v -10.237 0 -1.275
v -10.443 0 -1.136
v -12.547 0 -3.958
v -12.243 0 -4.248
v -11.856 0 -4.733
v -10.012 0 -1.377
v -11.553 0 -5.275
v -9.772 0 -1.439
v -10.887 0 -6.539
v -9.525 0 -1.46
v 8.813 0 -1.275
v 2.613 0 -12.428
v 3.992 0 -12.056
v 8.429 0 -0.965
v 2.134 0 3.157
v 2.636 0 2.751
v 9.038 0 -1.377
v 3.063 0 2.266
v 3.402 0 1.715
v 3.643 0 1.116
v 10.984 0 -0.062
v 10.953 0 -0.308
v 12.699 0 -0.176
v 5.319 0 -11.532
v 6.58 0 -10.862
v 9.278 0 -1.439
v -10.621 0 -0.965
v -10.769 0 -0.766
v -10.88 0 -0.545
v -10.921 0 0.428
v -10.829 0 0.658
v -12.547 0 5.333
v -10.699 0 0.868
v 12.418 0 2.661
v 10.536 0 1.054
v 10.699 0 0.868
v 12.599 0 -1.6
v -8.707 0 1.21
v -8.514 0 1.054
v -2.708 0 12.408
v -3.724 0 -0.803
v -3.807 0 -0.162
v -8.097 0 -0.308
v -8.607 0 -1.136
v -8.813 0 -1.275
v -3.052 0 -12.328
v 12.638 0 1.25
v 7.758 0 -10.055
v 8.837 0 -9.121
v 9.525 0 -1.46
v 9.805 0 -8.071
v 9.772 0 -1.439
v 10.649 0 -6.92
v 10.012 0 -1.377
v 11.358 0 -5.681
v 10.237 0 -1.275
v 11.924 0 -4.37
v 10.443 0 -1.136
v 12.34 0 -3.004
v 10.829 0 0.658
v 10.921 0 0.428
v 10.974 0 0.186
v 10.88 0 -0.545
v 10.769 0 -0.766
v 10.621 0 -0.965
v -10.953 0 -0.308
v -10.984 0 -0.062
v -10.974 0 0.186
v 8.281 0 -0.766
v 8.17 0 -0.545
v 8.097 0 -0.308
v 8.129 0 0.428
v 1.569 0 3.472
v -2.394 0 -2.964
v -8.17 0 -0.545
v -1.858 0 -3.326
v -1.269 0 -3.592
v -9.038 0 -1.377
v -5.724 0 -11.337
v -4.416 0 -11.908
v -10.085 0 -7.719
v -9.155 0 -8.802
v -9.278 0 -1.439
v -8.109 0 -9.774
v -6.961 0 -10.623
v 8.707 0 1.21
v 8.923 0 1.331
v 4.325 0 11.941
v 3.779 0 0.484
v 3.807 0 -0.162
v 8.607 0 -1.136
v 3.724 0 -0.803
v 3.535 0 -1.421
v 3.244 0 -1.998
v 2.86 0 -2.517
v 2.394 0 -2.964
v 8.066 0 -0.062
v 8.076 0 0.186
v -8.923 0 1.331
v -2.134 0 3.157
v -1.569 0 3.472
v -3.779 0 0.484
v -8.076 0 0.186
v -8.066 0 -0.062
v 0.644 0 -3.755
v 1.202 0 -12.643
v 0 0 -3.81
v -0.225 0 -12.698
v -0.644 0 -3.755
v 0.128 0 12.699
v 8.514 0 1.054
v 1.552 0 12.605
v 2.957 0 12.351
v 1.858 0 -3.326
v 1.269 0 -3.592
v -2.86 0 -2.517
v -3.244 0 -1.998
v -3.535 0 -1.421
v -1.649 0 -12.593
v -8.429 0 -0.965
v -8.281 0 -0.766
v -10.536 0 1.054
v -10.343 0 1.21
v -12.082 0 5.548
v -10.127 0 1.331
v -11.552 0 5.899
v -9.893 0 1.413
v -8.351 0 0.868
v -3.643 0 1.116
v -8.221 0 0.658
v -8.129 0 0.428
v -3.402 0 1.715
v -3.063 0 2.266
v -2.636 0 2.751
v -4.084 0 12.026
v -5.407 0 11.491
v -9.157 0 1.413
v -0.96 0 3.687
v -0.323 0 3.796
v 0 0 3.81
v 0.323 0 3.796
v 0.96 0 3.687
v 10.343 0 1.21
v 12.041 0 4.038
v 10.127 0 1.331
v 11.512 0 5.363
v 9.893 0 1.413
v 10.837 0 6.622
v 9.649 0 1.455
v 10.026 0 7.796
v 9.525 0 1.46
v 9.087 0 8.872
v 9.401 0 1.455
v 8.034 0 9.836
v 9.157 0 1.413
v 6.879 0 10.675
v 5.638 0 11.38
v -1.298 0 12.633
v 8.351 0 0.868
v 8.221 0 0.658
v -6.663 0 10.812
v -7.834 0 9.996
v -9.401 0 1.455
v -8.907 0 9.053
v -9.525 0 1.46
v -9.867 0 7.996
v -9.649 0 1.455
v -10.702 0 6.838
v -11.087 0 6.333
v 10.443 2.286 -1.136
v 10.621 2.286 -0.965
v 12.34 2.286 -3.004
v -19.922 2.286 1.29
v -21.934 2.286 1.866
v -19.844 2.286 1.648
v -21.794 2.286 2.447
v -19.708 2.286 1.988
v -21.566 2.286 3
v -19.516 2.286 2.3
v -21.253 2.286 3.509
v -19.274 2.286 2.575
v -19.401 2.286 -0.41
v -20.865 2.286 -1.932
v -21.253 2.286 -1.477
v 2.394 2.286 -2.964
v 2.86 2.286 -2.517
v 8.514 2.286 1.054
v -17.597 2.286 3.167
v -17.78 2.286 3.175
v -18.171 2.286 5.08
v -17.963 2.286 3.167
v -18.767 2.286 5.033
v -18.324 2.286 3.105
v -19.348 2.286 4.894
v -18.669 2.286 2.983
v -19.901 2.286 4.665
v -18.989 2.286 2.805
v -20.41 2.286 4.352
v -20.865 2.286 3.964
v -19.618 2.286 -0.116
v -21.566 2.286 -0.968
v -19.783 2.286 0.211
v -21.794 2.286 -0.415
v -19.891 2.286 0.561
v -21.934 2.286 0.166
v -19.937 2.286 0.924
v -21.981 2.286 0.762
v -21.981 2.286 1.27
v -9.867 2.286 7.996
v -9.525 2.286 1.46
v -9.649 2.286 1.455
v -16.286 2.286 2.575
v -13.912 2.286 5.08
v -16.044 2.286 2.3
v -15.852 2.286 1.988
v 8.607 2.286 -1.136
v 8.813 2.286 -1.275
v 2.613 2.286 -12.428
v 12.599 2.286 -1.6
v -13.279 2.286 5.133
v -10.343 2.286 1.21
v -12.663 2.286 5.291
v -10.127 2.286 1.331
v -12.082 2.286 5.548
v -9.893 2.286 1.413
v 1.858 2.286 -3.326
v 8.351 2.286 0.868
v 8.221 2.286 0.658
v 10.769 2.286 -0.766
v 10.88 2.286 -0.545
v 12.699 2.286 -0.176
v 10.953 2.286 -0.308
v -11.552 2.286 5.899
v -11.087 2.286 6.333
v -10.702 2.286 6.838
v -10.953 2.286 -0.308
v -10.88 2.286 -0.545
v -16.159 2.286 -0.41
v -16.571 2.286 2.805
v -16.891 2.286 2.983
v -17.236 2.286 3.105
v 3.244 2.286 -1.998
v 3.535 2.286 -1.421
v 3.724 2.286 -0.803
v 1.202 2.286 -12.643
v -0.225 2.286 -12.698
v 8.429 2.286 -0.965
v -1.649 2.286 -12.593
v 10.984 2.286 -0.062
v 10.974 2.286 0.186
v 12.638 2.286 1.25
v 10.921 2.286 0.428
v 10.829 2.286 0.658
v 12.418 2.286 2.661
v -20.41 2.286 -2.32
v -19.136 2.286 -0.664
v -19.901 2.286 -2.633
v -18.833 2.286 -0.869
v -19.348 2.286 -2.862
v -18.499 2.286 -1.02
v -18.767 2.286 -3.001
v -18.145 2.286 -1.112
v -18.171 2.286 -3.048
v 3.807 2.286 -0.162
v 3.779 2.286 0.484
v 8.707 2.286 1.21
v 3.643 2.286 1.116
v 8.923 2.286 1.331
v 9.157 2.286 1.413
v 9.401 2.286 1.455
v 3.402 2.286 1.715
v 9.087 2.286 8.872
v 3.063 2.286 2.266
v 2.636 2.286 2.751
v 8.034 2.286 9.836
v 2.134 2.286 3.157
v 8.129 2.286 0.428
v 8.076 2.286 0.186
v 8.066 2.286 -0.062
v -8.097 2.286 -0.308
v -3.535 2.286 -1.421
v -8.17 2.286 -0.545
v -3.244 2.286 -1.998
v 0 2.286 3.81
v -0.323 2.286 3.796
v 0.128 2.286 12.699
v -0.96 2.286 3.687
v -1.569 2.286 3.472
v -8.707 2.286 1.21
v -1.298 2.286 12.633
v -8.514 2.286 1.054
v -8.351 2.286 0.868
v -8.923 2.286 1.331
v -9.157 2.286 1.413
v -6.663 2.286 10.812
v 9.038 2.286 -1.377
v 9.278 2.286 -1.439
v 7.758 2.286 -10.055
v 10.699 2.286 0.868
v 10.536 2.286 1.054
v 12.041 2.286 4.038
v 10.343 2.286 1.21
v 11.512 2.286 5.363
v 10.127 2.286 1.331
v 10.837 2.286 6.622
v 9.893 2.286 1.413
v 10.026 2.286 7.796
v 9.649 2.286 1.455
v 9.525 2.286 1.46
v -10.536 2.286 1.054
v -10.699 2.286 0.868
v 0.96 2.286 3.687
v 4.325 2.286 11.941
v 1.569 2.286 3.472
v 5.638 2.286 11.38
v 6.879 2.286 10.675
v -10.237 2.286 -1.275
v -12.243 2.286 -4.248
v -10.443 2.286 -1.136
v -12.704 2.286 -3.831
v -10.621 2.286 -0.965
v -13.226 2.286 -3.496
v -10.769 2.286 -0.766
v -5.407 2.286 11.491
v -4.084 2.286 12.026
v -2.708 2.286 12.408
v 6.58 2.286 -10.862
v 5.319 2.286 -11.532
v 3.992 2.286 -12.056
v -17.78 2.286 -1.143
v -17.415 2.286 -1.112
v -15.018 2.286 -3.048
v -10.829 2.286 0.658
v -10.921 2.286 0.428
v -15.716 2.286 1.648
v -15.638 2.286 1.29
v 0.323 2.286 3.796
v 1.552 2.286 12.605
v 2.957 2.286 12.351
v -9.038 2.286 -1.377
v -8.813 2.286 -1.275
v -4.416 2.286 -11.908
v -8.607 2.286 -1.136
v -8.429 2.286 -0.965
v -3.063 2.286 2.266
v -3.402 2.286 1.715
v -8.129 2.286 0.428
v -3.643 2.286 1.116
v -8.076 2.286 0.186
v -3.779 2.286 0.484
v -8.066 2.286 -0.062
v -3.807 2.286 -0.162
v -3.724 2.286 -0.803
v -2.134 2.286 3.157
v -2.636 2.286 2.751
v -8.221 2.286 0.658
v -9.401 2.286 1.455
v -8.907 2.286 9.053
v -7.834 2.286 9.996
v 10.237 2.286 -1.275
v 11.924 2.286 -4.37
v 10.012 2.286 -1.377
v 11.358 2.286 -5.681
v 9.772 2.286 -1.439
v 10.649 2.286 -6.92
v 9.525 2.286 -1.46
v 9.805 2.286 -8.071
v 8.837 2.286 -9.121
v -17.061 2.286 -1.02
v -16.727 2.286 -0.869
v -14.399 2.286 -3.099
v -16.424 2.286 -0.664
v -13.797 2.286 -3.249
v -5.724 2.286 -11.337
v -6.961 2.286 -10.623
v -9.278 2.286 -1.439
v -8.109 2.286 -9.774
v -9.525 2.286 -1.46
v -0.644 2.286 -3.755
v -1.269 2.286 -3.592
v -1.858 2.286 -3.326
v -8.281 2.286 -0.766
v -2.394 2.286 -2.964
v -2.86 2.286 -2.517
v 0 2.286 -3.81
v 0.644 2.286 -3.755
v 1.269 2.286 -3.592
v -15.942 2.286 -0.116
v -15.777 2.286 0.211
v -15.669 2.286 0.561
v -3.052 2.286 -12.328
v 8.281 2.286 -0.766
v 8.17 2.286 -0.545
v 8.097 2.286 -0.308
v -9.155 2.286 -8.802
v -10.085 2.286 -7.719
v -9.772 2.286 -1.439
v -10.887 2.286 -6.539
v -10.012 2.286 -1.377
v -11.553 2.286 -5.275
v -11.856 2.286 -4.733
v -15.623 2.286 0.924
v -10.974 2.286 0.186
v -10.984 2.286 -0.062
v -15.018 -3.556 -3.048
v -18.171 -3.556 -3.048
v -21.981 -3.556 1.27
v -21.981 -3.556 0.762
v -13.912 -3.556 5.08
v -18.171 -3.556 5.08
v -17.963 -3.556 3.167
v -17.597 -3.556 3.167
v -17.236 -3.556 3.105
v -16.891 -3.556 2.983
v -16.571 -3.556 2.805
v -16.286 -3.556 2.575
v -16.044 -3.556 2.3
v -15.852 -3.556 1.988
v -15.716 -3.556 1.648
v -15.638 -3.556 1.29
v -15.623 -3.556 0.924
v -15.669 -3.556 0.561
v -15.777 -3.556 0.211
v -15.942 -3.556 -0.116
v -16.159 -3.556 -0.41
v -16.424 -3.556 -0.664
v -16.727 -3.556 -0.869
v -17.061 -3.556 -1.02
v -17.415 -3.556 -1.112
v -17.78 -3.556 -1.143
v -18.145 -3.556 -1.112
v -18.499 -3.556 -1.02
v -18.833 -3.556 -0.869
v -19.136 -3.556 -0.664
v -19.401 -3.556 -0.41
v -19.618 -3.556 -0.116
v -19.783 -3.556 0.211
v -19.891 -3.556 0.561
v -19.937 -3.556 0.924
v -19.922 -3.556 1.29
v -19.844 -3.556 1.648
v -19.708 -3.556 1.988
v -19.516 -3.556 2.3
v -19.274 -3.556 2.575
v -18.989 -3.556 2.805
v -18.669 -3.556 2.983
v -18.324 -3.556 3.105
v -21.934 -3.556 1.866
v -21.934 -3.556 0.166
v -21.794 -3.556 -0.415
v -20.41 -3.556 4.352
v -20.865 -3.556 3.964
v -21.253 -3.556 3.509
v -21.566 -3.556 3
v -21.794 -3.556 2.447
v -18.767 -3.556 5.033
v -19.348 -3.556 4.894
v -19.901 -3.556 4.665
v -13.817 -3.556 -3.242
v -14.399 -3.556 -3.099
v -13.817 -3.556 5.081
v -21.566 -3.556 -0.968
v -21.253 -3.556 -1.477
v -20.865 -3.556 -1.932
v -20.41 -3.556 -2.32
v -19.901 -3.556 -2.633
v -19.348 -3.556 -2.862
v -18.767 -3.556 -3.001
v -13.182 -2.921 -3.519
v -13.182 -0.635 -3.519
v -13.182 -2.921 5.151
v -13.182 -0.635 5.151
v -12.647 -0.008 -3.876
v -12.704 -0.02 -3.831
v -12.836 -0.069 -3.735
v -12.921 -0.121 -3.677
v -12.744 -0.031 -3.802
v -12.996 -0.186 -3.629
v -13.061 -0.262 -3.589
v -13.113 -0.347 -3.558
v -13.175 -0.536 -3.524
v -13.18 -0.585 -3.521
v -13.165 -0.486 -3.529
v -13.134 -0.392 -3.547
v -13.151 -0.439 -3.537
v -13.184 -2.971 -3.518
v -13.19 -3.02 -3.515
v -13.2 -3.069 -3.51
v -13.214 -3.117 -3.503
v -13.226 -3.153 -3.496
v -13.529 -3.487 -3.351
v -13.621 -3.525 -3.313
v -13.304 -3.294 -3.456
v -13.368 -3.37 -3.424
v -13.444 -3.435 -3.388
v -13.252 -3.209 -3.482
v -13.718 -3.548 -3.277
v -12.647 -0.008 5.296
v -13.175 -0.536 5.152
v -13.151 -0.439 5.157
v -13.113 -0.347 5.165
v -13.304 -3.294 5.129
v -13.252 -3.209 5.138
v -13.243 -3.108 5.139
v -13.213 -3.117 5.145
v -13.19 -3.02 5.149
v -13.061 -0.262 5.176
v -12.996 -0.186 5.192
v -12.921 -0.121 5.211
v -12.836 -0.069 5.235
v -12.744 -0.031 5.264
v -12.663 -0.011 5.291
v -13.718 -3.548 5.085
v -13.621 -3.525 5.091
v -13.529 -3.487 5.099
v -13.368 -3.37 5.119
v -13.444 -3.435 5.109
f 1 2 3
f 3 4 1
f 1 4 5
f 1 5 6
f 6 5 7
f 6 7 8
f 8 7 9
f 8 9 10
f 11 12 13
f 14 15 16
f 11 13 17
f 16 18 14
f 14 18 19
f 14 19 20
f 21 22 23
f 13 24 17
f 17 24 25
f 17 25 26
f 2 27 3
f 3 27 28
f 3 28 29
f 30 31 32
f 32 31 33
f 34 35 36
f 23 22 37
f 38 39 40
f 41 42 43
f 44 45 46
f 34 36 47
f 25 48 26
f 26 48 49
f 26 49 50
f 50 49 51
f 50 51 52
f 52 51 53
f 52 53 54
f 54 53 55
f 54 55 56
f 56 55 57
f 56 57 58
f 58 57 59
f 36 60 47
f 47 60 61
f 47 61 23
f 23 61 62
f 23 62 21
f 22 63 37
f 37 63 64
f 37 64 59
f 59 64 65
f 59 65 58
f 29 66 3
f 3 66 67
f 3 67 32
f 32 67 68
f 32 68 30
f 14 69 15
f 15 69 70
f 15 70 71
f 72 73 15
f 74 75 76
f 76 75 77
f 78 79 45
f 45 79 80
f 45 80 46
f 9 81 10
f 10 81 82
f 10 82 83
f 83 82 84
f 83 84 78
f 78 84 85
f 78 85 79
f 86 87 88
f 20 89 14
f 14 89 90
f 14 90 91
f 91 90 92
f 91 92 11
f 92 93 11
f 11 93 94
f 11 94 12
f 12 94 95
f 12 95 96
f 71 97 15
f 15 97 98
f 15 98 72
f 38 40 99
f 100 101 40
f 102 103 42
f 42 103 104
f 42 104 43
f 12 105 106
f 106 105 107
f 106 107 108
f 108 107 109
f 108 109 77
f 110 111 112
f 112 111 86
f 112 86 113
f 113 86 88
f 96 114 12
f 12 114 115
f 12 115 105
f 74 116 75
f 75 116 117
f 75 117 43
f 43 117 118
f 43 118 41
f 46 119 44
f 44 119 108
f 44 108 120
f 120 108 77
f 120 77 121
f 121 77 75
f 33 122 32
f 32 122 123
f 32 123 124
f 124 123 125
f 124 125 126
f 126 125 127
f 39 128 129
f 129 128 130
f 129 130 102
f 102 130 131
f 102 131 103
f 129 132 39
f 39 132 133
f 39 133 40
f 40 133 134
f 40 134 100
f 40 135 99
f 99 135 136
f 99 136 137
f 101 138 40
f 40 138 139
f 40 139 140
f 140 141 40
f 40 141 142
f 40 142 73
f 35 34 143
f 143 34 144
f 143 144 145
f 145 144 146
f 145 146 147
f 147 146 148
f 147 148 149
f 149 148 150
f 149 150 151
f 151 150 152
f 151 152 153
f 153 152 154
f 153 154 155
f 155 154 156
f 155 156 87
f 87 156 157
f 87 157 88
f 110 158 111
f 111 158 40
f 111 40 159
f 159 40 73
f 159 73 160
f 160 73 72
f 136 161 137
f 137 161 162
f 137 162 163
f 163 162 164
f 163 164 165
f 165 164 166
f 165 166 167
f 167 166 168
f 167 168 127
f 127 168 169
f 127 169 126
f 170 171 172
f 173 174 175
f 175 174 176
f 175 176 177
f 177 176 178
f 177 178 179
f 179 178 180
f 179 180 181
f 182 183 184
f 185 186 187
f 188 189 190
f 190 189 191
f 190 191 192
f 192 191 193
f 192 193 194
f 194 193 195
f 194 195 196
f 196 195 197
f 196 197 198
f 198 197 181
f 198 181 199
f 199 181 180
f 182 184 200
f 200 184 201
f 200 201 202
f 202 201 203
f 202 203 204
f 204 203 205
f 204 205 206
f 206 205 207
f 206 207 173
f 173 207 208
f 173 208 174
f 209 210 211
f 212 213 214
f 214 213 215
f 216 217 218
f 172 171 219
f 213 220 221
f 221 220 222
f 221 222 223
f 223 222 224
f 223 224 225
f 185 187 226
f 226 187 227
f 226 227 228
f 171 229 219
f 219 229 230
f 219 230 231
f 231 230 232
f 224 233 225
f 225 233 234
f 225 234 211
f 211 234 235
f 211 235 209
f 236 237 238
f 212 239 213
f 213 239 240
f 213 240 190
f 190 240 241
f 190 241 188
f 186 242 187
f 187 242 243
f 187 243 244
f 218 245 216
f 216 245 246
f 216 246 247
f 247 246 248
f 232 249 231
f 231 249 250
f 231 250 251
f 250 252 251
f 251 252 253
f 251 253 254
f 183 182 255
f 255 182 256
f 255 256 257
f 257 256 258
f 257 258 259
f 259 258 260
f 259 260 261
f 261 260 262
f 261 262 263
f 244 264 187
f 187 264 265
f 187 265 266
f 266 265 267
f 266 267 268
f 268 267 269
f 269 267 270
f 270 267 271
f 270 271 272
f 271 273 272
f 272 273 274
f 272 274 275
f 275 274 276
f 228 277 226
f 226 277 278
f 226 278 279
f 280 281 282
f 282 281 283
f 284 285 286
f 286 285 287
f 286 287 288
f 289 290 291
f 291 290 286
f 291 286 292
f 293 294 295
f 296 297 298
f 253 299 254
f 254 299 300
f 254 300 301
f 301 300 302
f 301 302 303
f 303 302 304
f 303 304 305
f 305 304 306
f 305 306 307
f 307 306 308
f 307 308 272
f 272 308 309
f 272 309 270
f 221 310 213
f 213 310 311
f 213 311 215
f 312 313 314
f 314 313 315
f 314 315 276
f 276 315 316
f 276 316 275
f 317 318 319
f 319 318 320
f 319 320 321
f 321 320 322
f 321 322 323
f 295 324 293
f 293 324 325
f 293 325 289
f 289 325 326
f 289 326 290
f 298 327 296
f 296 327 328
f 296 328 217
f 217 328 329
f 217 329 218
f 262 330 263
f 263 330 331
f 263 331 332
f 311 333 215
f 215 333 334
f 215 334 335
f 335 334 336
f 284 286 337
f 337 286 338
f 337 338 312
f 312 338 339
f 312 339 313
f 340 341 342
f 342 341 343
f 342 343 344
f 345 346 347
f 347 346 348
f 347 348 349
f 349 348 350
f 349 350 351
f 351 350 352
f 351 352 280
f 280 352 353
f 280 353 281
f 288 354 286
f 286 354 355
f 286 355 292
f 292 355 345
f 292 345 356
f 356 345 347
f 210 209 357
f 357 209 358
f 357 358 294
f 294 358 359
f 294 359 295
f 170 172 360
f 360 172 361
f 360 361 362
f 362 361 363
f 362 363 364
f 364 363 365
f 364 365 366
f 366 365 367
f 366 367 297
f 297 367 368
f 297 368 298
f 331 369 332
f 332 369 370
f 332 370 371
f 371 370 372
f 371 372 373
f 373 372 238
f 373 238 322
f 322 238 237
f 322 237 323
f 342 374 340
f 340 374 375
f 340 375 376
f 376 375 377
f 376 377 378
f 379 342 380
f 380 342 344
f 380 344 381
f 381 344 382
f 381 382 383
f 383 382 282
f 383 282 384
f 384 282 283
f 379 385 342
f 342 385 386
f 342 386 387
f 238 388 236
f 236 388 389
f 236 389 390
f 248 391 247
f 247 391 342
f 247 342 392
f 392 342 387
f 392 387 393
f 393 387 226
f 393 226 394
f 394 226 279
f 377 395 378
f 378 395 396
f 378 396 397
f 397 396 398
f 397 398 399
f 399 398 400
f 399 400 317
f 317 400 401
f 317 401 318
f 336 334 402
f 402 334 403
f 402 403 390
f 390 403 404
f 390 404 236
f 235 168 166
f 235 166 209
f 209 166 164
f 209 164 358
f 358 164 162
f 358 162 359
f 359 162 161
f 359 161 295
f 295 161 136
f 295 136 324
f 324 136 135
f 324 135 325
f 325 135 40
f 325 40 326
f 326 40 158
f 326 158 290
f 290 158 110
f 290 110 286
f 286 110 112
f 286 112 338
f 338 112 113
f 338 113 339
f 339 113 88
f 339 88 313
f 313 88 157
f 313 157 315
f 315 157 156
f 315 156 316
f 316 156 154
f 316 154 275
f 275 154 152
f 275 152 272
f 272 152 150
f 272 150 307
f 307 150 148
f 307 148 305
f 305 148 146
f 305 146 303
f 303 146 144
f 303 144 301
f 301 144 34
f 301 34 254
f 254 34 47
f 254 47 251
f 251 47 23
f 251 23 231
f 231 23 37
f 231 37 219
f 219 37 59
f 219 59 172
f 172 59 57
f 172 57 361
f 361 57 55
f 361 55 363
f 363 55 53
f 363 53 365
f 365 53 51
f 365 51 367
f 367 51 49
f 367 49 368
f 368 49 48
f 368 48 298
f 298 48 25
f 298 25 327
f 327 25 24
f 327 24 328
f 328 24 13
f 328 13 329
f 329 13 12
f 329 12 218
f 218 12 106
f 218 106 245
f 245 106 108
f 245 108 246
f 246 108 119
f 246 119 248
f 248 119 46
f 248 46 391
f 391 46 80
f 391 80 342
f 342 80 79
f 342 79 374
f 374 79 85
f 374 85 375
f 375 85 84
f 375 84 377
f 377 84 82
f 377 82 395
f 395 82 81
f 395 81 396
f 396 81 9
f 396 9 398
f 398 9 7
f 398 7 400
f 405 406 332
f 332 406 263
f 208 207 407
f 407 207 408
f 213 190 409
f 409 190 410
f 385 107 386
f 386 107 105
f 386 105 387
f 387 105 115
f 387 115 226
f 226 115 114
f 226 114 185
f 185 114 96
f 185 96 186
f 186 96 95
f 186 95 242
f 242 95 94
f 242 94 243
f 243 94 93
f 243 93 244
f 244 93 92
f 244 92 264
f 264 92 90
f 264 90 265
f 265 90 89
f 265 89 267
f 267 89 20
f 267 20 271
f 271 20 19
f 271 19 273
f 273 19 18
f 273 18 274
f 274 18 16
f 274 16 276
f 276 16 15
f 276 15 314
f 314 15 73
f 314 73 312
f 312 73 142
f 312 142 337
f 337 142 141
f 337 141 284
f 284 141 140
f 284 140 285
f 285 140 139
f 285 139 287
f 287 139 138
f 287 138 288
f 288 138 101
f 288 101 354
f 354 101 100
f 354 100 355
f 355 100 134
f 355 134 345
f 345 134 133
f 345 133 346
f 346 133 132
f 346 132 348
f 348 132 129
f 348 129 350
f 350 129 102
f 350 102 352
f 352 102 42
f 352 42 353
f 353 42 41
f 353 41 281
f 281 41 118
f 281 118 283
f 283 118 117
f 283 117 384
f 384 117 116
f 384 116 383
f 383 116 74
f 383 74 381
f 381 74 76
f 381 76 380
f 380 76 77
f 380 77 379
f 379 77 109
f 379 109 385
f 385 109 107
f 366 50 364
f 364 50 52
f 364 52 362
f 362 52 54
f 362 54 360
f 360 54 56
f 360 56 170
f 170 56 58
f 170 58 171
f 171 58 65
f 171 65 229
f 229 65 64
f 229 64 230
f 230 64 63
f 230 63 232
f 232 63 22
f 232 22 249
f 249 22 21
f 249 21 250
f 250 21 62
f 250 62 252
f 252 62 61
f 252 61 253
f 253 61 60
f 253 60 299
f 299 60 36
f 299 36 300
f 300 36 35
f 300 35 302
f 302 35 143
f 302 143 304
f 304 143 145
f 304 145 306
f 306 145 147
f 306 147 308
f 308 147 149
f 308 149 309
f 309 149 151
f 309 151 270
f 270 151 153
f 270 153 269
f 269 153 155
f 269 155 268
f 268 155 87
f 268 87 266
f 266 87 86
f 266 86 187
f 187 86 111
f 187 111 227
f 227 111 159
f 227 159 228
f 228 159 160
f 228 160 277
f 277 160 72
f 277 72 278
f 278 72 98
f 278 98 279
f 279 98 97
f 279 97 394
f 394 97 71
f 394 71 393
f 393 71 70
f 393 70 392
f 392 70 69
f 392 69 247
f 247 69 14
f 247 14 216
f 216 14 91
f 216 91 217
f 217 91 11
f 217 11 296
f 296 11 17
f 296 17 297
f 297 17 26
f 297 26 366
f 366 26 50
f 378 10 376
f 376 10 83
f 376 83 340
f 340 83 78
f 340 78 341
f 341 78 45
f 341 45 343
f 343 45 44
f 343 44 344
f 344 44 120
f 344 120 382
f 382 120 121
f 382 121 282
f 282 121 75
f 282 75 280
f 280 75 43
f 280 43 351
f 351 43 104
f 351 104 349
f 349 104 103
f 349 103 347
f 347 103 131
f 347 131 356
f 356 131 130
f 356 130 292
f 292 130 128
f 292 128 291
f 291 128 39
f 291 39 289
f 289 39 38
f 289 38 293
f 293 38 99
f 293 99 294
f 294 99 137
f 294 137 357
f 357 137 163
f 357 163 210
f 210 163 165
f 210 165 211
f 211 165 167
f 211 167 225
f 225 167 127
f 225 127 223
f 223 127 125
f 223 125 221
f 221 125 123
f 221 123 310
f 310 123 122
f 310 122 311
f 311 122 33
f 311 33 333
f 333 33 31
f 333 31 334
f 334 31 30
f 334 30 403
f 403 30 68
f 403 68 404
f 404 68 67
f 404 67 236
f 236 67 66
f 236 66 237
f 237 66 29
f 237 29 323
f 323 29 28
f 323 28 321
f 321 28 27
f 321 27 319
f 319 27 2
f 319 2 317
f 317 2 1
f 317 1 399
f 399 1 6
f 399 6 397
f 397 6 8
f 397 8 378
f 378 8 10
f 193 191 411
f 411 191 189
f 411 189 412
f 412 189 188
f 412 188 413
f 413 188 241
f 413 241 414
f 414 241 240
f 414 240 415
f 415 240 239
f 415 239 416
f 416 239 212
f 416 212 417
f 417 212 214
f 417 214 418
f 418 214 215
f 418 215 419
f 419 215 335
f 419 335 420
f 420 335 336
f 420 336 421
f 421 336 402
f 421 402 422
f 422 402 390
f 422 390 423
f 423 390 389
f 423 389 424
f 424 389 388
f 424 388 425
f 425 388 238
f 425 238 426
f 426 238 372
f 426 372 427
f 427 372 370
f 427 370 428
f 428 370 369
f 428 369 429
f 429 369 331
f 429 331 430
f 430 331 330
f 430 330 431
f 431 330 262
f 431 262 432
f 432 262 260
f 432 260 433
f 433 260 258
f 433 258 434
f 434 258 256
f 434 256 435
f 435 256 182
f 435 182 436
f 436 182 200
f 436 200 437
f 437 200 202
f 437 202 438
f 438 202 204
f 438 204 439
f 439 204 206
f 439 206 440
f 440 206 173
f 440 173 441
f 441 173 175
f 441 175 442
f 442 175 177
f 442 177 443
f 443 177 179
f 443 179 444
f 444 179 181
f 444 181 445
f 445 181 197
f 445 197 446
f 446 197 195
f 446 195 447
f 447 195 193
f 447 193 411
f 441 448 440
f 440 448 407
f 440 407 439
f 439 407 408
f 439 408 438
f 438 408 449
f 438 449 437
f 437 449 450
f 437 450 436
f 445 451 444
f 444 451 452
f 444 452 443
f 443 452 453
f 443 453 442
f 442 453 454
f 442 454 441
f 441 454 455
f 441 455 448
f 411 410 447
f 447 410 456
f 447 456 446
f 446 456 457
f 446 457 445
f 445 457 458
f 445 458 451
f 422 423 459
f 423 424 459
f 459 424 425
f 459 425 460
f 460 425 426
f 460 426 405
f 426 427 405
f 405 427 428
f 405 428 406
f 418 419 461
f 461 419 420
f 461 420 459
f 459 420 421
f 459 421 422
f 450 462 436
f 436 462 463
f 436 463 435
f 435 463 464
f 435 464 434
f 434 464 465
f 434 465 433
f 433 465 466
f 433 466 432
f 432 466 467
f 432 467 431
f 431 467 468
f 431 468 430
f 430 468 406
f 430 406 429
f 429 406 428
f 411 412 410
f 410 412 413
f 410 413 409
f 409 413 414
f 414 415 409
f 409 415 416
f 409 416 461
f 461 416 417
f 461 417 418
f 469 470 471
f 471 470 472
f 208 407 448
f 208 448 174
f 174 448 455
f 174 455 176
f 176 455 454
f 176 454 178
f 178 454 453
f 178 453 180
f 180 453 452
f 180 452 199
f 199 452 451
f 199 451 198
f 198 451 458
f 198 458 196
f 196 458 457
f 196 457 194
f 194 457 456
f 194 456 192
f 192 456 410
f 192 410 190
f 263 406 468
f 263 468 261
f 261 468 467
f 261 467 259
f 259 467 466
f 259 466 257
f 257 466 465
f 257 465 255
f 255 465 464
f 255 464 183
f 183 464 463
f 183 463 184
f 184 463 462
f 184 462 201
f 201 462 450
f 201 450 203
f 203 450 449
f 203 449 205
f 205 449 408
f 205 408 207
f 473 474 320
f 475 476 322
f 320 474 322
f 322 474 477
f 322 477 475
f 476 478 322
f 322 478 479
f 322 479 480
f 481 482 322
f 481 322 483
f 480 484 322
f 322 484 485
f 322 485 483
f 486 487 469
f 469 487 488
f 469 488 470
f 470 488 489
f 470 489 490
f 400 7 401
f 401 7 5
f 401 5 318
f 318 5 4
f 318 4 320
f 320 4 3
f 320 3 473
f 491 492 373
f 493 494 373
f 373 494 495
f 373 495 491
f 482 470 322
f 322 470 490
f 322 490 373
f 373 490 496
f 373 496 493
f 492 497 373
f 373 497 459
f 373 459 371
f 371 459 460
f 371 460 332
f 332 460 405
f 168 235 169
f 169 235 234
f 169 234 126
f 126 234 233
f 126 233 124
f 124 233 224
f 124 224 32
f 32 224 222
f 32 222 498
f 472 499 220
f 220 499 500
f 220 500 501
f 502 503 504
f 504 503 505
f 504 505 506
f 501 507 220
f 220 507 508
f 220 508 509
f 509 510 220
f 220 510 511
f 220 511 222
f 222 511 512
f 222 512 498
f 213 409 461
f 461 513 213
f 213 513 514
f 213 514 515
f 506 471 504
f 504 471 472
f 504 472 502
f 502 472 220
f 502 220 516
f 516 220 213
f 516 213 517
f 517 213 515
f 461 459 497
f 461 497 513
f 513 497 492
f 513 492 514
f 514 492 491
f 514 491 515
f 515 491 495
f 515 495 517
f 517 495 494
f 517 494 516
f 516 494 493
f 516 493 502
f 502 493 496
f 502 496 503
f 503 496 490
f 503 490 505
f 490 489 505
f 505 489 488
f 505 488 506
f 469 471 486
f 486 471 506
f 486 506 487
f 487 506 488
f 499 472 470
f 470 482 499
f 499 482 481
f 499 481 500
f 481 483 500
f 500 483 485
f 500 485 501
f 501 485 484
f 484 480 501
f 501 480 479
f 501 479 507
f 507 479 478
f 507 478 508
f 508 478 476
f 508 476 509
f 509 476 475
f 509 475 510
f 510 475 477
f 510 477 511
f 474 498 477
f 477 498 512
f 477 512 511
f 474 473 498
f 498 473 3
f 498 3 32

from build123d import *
from build123d.topology import SkipClean

# Parameters (mm, degrees)
SKETCH1_R           = 3.81
SKETCH1_R_2         = 1.4605
SKETCH1_R_3         = 2.159
BOSS_EXTRUDE1_DEPTH = 2.286
BOSS_EXTRUDE2_START = 3.556
SKETCH3_W           = 8.798430976
SKETCH3_H           = 8.128
SKETCH3_R           = 2.159
BOSS_EXTRUDE2_DEPTH = 3.556
FILLET1_R           = 3.81
FILLET2_R           = 3.81
FILLET3_R           = 0.635


with BuildPart() as part:
    # Sketch1 → Boss-Extrude1 (new body)
    with BuildSketch(Plane(origin=(0, 0, 0), x_dir=(1, 0, 0), z_dir=(0, 1, 0))):
        with BuildLine():
            Line((-12.328815677, 3.048), (-21.980815677, 3.048))
            Line((-21.980815677, 3.048), (-21.980815677, -5.08))
            Line((-21.980815677, -5.08), (-11.639742265, -5.08))
            ThreePointArc((-11.639742265, -5.08), (12.654605425, 1.072828757), (-12.328815677, 3.048))
        make_face()
        with Locations(Location((0, 0, 0), (0, 0, 270))):
            Circle(SKETCH1_R, mode=Mode.SUBTRACT)
        with Locations(Location((9.525, 0, 0), (0, 0, 270))):
            Circle(SKETCH1_R_2, mode=Mode.SUBTRACT)
        with Locations(Location((-9.525, 0, 0), (0, 0, 270))):
            Circle(SKETCH1_R_2, mode=Mode.SUBTRACT)
        with Locations(Location((-17.78, -1.016, 0), (0, 0, 270))):
            Circle(SKETCH1_R_3, mode=Mode.SUBTRACT)
    extrude(amount=BOSS_EXTRUDE1_DEPTH)

    # Sketch3 → Boss-Extrude2 (add)
    with SkipClean():  # the faces are left unmerged after this step: merging them gives an invalid solid
        with BuildSketch(Plane.XZ.offset(BOSS_EXTRUDE2_START)):
            with Locations((-17.581600189, 1.016)):
                Rectangle(SKETCH3_W, SKETCH3_H)
            with Locations(Location((-17.78, 1.016, 0), (0, 0, 270))):
                Circle(SKETCH3_R, mode=Mode.SUBTRACT)
        extrude(amount=-BOSS_EXTRUDE2_DEPTH)

    # Fillet1
    fillet1_edges = [part.edges().sort_by_distance(p)[0] for p in [
        (-21.980815677, -1.778, 5.08),
        (-21.980815677, -1.778, -3.048),
    ]]
    fillet(fillet1_edges, radius=FILLET1_R)

    # Fillet2
    # the kernel refuses this fillet: 3.81 mm, written as the material it adds along each edge
    with BuildSketch(Plane(origin=(-12.328815677, -6.723594375, -3.048), x_dir=(-1, 0, 0), z_dir=(0, 1, 0))) as fillet2_piece_1_section:
        with BuildLine():
            CenterArc((2.68943775, -3.81), FILLET2_R, 90, 65.456460121)
            ThreePointArc((-0.776313041, -2.227384615), (-0.336332546, -1.13175458), (0, 0))
            Line((0, 0), (2.68943775, 0))
        make_face()
    fillet2_piece_1 = extrude(amount=9.009594375, mode=Mode.PRIVATE)
    fillet2_piece_1 = split(fillet2_piece_1, bisect_by=Plane(origin=(-13.789984069, 0, -3.128673841), z_dir=(0, -1, 0)), keep=Keep.TOP, mode=Mode.PRIVATE)
    fillet2_piece_1 = split(fillet2_piece_1, bisect_by=Plane(origin=(-13.789984069, -3.556, -3.128673841), z_dir=(0, 1, 0)), keep=Keep.TOP, mode=Mode.PRIVATE)
    fillet2_piece_1 = split(fillet2_piece_1, bisect_by=Plane(origin=(-13.182384701, -1.778, -3.128673841), z_dir=(-1, 0, 0)), keep=Keep.TOP, mode=Mode.PRIVATE)
    add(fillet2_piece_1)
    with BuildSketch(Plane(origin=(-12.328815677, 0, -3.048), x_dir=(-1, 0, 0), z_dir=(0, 1, 0))) as fillet2_piece_2_section:
        with BuildLine():
            CenterArc((2.68943775, -3.81), FILLET2_R, 90, 65.456460121)
            ThreePointArc((-0.776313041, -2.227384615), (-0.336332546, -1.13175458), (0, 0))
            Line((0, 0), (2.68943775, 0))
        make_face()
    fillet2_piece_2 = extrude(amount=2.286, mode=Mode.PRIVATE)
    fillet2_piece_2 = split(fillet2_piece_2, bisect_by=Plane(origin=(-13.182384701, 1.143, -3.128673841), z_dir=(-1, 0, 0)), keep=Keep.TOP, mode=Mode.PRIVATE)
    add(fillet2_piece_2)
    with BuildSketch(Plane(origin=(-12.328815677, 0, -3.048), x_dir=(-1, 0, 0), z_dir=(0, 1, 0))) as fillet2_piece_3_section:
        with BuildLine():
            CenterArc((2.68943775, -3.81), FILLET2_R, 90, 65.456460121)
            ThreePointArc((-0.776313041, -2.227384615), (-0.336332546, -1.13175458), (0, 0))
            Line((0, 0), (2.68943775, 0))
        make_face()
    fillet2_piece_3 = extrude(amount=2.286, mode=Mode.PRIVATE)
    fillet2_piece_3 = split(fillet2_piece_3, bisect_by=Plane(origin=(-13.182384701, 1.143, -3.680280143), z_dir=(1, 0, 0)), keep=Keep.TOP, mode=Mode.PRIVATE)
    add(fillet2_piece_3)
    with BuildSketch(Plane(origin=(-11.639742265, -5.681026739, 5.08), x_dir=(0.47068197991323696, 0, 0.8823029376495101), z_dir=(0, 1, 0))) as fillet2_piece_4_section:
        with BuildLine():
            CenterArc((2.291991427, -3.798252976), FILLET2_R, 94.500395957, 57.421029607)
            Line((-1.069582765, -2.004954632), (0, 0))
            ThreePointArc((0, 0), (0.996518012, -0.039156748), (1.993036024, 0))
        make_face()
    fillet2_piece_4 = extrude(amount=7.967026739, mode=Mode.PRIVATE)
    fillet2_piece_4 = split(fillet2_piece_4, bisect_by=Plane(origin=(-13.504288869, 0, 5.055827312), z_dir=(0, -1, 0)), keep=Keep.TOP, mode=Mode.PRIVATE)
    fillet2_piece_4 = split(fillet2_piece_4, bisect_by=Plane(origin=(-13.504288869, -3.556, 5.055827312), z_dir=(0, 1, 0)), keep=Keep.TOP, mode=Mode.PRIVATE)
    fillet2_piece_4 = split(fillet2_piece_4, bisect_by=Plane(origin=(-13.182384701, -1.778, 5.055827312), z_dir=(-1, 0, 0)), keep=Keep.TOP, mode=Mode.PRIVATE)
    add(fillet2_piece_4)
    with BuildSketch(Plane(origin=(-11.639742265, 0, 5.08), x_dir=(0.47068197991323696, 0, 0.8823029376495101), z_dir=(0, 1, 0))) as fillet2_piece_5_section:
        with BuildLine():
            CenterArc((2.291991427, -3.798252976), FILLET2_R, 94.500395957, 57.421029607)
            Line((-1.069582765, -2.004954632), (0, 0))
            ThreePointArc((0, 0), (0.996518012, -0.039156748), (1.993036024, 0))
        make_face()
    fillet2_piece_5 = extrude(amount=2.286, mode=Mode.PRIVATE)
    fillet2_piece_5 = split(fillet2_piece_5, bisect_by=Plane(origin=(-13.182384701, 1.143, 5.488267474), z_dir=(1, 0, 0)), keep=Keep.TOP, mode=Mode.PRIVATE)
    add(fillet2_piece_5)
    with BuildSketch(Plane(origin=(-11.639742265, 0, 5.08), x_dir=(0.47068197991323696, 0, 0.8823029376495101), z_dir=(0, 1, 0))) as fillet2_piece_6_section:
        with BuildLine():
            CenterArc((2.291991427, -3.798252976), FILLET2_R, 94.500395957, 57.421029607)
            Line((-1.069582765, -2.004954632), (0, 0))
            ThreePointArc((0, 0), (0.996518012, -0.039156748), (1.993036024, 0))
        make_face()
    fillet2_piece_6 = extrude(amount=2.286, mode=Mode.PRIVATE)
    fillet2_piece_6 = split(fillet2_piece_6, bisect_by=Plane(origin=(-13.182384701, 1.143, 5.055827312), z_dir=(-1, 0, 0)), keep=Keep.TOP, mode=Mode.PRIVATE)
    add(fillet2_piece_6)

    # Fillet3
    fillet3_edges = [part.edges().sort_by_distance(p)[0] for p in [
        (-13.182384701, -3.556, 0.815529295),
        (-13.182384701, 0, 0.815529295),
    ]]
    fillet(fillet3_edges, radius=FILLET3_R)


solid = part.part
